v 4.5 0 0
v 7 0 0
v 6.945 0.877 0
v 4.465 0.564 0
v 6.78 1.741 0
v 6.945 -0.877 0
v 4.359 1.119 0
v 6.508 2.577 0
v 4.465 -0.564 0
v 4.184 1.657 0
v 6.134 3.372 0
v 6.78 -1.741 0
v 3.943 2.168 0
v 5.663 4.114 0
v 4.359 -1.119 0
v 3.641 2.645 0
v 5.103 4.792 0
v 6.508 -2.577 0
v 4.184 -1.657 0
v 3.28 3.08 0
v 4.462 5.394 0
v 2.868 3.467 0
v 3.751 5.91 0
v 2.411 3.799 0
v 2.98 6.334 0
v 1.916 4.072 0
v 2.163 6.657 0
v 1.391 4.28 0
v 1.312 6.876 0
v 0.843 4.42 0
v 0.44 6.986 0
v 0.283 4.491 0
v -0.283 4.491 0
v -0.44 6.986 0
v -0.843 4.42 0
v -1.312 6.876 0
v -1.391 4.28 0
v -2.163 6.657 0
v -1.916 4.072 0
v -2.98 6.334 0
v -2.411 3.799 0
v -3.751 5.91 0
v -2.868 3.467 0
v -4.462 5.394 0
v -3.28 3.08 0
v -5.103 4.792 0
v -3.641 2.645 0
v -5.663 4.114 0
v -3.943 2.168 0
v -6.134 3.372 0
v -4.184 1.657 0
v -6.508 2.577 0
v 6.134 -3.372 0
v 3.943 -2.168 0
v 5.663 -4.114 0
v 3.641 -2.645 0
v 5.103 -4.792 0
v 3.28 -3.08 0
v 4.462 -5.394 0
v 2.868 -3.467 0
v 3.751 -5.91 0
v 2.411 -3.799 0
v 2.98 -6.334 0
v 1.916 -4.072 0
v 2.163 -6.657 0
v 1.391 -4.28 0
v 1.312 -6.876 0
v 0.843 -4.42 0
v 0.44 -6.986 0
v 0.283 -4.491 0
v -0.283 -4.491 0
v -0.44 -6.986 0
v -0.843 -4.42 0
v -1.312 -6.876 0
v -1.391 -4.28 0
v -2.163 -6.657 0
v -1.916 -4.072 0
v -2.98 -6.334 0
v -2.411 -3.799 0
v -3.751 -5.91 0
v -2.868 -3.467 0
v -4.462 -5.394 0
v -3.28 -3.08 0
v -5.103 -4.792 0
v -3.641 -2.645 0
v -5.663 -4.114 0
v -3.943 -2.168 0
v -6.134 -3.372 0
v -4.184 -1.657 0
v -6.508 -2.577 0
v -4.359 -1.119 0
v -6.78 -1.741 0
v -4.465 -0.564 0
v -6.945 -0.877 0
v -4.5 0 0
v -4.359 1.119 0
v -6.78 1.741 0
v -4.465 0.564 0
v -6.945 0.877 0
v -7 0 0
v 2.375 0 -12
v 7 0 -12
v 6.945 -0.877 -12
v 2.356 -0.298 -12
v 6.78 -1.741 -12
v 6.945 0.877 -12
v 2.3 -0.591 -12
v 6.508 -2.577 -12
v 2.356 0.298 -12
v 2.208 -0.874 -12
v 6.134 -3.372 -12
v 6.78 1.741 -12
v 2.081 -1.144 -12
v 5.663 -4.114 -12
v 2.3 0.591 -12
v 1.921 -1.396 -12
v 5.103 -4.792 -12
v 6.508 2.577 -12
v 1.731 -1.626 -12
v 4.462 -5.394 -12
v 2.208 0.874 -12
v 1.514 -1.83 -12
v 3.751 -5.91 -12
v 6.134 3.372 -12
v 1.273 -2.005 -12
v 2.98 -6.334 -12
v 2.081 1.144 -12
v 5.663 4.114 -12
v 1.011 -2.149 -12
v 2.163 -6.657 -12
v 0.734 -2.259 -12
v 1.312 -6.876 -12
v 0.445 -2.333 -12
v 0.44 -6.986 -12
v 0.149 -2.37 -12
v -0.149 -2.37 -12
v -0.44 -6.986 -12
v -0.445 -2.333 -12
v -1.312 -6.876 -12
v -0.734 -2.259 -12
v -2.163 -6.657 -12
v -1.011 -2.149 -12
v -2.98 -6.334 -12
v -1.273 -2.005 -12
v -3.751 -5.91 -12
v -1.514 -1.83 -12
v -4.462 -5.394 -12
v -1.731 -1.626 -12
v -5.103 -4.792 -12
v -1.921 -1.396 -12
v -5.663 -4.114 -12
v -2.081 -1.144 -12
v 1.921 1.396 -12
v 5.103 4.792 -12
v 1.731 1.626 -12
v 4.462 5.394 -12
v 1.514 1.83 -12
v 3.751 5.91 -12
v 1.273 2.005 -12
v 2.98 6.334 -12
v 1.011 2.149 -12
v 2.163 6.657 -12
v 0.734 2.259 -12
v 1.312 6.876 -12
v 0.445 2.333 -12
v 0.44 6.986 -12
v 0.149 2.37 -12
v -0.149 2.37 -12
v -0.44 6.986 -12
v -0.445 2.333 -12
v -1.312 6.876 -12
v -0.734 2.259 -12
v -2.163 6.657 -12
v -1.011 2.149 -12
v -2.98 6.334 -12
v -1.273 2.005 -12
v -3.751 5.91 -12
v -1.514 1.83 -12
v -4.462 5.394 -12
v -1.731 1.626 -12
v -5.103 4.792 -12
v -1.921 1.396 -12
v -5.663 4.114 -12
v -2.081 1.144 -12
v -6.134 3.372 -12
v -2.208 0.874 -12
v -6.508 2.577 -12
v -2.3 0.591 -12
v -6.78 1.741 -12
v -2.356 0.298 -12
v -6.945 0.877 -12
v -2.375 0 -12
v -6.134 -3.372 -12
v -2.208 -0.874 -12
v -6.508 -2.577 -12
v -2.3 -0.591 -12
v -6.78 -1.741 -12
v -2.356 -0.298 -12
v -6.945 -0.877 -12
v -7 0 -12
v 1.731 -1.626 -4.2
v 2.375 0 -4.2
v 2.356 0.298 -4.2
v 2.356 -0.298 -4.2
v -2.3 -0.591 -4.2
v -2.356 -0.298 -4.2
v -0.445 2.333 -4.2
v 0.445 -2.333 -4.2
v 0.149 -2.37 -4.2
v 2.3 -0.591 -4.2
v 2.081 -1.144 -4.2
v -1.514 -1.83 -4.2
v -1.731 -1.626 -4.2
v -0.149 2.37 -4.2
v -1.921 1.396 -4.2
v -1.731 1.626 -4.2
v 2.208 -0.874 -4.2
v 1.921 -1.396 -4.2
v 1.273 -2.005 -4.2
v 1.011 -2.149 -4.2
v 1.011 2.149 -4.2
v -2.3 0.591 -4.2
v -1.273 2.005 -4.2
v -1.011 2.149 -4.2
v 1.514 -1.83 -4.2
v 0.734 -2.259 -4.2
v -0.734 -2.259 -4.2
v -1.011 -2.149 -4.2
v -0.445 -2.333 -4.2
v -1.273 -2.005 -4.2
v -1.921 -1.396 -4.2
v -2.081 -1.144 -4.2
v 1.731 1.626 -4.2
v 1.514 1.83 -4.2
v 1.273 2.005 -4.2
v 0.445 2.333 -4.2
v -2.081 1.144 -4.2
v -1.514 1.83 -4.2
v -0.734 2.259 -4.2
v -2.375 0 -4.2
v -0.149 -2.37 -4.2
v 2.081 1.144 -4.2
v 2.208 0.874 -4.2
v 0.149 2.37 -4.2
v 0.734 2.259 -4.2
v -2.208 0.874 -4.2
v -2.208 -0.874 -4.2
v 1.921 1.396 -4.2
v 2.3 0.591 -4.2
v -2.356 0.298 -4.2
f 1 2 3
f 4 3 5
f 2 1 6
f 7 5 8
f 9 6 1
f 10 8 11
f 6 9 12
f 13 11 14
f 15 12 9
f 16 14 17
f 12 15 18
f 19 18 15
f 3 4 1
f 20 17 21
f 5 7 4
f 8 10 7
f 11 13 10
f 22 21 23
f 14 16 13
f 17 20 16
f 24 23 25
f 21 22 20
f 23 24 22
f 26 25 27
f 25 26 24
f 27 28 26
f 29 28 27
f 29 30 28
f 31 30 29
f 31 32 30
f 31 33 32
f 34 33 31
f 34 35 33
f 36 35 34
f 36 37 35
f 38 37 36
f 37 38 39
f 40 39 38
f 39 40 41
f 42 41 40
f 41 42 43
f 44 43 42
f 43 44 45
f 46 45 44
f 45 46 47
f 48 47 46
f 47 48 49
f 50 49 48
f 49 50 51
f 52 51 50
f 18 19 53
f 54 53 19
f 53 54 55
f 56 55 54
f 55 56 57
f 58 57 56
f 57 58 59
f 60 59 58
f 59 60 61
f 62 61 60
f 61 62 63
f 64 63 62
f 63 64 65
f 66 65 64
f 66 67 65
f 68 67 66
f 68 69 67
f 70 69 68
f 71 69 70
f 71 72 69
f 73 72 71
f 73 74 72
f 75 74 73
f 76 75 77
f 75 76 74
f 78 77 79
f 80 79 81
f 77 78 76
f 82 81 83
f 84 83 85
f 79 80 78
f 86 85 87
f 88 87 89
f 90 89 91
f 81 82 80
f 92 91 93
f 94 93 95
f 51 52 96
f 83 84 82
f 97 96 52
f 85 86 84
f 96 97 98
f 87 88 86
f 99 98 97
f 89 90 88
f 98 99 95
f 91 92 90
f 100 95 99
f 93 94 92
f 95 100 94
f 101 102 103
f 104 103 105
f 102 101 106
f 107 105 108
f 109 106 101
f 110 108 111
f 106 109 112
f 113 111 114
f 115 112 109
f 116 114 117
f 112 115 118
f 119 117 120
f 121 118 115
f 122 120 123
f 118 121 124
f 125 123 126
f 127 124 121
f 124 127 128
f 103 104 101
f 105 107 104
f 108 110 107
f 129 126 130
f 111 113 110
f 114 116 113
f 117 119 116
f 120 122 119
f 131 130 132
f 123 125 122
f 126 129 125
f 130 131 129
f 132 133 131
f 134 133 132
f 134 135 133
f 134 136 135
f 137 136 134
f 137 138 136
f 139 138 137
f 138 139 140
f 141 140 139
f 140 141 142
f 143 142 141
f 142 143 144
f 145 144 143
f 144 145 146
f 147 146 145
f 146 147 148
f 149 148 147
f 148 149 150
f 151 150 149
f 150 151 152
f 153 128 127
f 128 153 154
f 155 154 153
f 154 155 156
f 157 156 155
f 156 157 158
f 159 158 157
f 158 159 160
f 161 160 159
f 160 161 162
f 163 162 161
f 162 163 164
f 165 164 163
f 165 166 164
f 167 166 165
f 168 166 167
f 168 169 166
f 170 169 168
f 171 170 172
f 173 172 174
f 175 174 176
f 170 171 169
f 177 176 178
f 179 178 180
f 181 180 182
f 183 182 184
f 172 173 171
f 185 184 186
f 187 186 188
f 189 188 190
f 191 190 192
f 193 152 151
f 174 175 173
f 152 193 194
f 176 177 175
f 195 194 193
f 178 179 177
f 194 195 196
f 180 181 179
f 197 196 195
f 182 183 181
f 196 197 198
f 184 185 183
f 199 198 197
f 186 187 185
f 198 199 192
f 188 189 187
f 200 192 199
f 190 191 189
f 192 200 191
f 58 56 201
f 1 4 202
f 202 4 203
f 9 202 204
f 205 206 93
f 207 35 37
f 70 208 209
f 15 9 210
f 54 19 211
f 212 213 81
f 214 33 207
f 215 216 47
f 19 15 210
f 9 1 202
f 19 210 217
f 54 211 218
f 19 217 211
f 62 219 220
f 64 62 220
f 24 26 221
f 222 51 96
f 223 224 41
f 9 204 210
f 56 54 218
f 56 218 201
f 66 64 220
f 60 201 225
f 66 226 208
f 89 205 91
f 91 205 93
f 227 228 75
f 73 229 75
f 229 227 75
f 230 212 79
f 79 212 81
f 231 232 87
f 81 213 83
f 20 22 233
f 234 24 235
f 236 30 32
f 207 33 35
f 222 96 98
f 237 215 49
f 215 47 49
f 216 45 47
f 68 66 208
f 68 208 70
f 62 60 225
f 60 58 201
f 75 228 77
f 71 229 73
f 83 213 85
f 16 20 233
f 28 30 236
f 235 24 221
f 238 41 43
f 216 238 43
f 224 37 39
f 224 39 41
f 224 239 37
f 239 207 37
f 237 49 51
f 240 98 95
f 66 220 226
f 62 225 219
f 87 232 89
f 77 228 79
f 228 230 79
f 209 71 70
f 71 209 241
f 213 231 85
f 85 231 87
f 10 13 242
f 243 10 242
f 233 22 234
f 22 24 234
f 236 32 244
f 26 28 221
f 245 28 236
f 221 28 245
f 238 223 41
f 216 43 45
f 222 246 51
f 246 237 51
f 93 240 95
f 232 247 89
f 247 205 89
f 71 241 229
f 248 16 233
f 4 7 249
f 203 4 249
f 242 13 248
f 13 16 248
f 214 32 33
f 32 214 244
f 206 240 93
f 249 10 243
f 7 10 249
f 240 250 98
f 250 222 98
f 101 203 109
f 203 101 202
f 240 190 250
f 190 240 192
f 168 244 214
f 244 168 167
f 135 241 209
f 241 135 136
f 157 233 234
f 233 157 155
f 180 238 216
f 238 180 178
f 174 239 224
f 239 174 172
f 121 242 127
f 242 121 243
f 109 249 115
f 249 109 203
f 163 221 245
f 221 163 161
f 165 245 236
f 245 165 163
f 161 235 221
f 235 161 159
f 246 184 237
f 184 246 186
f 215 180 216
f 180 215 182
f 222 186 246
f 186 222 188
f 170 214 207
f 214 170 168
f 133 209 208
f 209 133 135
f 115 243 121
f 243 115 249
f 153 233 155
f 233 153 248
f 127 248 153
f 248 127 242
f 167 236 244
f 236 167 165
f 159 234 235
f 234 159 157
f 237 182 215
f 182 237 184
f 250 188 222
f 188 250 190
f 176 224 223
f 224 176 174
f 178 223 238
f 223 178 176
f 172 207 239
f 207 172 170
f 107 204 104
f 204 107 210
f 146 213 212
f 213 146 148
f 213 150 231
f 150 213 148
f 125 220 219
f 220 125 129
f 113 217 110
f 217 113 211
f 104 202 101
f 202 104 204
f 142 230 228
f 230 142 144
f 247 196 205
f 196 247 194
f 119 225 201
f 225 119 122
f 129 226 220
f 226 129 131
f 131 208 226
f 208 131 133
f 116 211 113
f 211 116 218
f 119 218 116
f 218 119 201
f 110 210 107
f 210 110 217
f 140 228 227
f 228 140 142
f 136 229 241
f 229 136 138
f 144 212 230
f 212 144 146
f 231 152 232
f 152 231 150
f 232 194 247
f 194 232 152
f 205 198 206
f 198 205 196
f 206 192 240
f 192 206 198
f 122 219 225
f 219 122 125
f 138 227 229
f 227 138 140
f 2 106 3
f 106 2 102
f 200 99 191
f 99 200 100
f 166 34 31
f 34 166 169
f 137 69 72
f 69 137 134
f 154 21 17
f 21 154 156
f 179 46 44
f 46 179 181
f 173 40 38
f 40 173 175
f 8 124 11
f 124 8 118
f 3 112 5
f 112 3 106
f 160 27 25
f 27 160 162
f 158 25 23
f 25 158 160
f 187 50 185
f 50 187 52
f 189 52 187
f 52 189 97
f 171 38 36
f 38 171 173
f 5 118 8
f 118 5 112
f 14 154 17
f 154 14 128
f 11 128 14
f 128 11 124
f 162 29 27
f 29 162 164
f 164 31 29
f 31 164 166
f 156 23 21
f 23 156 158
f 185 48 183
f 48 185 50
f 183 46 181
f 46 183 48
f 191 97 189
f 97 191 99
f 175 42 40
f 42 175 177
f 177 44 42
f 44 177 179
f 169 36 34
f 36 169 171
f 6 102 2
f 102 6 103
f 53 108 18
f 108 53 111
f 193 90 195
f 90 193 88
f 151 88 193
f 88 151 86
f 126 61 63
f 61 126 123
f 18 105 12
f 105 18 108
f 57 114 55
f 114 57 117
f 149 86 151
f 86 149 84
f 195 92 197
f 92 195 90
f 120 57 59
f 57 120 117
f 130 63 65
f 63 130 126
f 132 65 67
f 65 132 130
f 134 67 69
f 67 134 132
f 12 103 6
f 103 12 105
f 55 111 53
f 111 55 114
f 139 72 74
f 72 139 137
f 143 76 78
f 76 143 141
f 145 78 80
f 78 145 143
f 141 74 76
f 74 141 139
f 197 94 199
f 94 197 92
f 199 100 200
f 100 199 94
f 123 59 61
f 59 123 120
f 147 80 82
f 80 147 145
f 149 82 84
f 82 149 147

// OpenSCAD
$fn = 50;


difference() {
	union() {
		translate(v = [0, 0, -12.0000000000]) {
			cylinder(h = 12, r = 7.0000000000);
		}
	}
	union() {
		translate(v = [0, 0, 0]) {
			rotate(a = [0, 0, 0]) {
				difference() {
					union() {
						#translate(v = [0, 0, -12.0000000000]) {
							cylinder(h = 12, r = 2.2500000000);
						}
						#translate(v = [0, 0, -4.2000000000]) {
							cylinder(h = 4.2000000000, r1 = 2.3750000000, r2 = 4.5000000000);
						}
						#translate(v = [0, 0, -12.0000000000]) {
							cylinder(h = 12, r = 2.3750000000);
						}
						#translate(v = [0, 0, -12.0000000000]) {
							cylinder(h = 12, r = 2.2500000000);
						}
					}
					union();
				}
			}
		}
	}
}
